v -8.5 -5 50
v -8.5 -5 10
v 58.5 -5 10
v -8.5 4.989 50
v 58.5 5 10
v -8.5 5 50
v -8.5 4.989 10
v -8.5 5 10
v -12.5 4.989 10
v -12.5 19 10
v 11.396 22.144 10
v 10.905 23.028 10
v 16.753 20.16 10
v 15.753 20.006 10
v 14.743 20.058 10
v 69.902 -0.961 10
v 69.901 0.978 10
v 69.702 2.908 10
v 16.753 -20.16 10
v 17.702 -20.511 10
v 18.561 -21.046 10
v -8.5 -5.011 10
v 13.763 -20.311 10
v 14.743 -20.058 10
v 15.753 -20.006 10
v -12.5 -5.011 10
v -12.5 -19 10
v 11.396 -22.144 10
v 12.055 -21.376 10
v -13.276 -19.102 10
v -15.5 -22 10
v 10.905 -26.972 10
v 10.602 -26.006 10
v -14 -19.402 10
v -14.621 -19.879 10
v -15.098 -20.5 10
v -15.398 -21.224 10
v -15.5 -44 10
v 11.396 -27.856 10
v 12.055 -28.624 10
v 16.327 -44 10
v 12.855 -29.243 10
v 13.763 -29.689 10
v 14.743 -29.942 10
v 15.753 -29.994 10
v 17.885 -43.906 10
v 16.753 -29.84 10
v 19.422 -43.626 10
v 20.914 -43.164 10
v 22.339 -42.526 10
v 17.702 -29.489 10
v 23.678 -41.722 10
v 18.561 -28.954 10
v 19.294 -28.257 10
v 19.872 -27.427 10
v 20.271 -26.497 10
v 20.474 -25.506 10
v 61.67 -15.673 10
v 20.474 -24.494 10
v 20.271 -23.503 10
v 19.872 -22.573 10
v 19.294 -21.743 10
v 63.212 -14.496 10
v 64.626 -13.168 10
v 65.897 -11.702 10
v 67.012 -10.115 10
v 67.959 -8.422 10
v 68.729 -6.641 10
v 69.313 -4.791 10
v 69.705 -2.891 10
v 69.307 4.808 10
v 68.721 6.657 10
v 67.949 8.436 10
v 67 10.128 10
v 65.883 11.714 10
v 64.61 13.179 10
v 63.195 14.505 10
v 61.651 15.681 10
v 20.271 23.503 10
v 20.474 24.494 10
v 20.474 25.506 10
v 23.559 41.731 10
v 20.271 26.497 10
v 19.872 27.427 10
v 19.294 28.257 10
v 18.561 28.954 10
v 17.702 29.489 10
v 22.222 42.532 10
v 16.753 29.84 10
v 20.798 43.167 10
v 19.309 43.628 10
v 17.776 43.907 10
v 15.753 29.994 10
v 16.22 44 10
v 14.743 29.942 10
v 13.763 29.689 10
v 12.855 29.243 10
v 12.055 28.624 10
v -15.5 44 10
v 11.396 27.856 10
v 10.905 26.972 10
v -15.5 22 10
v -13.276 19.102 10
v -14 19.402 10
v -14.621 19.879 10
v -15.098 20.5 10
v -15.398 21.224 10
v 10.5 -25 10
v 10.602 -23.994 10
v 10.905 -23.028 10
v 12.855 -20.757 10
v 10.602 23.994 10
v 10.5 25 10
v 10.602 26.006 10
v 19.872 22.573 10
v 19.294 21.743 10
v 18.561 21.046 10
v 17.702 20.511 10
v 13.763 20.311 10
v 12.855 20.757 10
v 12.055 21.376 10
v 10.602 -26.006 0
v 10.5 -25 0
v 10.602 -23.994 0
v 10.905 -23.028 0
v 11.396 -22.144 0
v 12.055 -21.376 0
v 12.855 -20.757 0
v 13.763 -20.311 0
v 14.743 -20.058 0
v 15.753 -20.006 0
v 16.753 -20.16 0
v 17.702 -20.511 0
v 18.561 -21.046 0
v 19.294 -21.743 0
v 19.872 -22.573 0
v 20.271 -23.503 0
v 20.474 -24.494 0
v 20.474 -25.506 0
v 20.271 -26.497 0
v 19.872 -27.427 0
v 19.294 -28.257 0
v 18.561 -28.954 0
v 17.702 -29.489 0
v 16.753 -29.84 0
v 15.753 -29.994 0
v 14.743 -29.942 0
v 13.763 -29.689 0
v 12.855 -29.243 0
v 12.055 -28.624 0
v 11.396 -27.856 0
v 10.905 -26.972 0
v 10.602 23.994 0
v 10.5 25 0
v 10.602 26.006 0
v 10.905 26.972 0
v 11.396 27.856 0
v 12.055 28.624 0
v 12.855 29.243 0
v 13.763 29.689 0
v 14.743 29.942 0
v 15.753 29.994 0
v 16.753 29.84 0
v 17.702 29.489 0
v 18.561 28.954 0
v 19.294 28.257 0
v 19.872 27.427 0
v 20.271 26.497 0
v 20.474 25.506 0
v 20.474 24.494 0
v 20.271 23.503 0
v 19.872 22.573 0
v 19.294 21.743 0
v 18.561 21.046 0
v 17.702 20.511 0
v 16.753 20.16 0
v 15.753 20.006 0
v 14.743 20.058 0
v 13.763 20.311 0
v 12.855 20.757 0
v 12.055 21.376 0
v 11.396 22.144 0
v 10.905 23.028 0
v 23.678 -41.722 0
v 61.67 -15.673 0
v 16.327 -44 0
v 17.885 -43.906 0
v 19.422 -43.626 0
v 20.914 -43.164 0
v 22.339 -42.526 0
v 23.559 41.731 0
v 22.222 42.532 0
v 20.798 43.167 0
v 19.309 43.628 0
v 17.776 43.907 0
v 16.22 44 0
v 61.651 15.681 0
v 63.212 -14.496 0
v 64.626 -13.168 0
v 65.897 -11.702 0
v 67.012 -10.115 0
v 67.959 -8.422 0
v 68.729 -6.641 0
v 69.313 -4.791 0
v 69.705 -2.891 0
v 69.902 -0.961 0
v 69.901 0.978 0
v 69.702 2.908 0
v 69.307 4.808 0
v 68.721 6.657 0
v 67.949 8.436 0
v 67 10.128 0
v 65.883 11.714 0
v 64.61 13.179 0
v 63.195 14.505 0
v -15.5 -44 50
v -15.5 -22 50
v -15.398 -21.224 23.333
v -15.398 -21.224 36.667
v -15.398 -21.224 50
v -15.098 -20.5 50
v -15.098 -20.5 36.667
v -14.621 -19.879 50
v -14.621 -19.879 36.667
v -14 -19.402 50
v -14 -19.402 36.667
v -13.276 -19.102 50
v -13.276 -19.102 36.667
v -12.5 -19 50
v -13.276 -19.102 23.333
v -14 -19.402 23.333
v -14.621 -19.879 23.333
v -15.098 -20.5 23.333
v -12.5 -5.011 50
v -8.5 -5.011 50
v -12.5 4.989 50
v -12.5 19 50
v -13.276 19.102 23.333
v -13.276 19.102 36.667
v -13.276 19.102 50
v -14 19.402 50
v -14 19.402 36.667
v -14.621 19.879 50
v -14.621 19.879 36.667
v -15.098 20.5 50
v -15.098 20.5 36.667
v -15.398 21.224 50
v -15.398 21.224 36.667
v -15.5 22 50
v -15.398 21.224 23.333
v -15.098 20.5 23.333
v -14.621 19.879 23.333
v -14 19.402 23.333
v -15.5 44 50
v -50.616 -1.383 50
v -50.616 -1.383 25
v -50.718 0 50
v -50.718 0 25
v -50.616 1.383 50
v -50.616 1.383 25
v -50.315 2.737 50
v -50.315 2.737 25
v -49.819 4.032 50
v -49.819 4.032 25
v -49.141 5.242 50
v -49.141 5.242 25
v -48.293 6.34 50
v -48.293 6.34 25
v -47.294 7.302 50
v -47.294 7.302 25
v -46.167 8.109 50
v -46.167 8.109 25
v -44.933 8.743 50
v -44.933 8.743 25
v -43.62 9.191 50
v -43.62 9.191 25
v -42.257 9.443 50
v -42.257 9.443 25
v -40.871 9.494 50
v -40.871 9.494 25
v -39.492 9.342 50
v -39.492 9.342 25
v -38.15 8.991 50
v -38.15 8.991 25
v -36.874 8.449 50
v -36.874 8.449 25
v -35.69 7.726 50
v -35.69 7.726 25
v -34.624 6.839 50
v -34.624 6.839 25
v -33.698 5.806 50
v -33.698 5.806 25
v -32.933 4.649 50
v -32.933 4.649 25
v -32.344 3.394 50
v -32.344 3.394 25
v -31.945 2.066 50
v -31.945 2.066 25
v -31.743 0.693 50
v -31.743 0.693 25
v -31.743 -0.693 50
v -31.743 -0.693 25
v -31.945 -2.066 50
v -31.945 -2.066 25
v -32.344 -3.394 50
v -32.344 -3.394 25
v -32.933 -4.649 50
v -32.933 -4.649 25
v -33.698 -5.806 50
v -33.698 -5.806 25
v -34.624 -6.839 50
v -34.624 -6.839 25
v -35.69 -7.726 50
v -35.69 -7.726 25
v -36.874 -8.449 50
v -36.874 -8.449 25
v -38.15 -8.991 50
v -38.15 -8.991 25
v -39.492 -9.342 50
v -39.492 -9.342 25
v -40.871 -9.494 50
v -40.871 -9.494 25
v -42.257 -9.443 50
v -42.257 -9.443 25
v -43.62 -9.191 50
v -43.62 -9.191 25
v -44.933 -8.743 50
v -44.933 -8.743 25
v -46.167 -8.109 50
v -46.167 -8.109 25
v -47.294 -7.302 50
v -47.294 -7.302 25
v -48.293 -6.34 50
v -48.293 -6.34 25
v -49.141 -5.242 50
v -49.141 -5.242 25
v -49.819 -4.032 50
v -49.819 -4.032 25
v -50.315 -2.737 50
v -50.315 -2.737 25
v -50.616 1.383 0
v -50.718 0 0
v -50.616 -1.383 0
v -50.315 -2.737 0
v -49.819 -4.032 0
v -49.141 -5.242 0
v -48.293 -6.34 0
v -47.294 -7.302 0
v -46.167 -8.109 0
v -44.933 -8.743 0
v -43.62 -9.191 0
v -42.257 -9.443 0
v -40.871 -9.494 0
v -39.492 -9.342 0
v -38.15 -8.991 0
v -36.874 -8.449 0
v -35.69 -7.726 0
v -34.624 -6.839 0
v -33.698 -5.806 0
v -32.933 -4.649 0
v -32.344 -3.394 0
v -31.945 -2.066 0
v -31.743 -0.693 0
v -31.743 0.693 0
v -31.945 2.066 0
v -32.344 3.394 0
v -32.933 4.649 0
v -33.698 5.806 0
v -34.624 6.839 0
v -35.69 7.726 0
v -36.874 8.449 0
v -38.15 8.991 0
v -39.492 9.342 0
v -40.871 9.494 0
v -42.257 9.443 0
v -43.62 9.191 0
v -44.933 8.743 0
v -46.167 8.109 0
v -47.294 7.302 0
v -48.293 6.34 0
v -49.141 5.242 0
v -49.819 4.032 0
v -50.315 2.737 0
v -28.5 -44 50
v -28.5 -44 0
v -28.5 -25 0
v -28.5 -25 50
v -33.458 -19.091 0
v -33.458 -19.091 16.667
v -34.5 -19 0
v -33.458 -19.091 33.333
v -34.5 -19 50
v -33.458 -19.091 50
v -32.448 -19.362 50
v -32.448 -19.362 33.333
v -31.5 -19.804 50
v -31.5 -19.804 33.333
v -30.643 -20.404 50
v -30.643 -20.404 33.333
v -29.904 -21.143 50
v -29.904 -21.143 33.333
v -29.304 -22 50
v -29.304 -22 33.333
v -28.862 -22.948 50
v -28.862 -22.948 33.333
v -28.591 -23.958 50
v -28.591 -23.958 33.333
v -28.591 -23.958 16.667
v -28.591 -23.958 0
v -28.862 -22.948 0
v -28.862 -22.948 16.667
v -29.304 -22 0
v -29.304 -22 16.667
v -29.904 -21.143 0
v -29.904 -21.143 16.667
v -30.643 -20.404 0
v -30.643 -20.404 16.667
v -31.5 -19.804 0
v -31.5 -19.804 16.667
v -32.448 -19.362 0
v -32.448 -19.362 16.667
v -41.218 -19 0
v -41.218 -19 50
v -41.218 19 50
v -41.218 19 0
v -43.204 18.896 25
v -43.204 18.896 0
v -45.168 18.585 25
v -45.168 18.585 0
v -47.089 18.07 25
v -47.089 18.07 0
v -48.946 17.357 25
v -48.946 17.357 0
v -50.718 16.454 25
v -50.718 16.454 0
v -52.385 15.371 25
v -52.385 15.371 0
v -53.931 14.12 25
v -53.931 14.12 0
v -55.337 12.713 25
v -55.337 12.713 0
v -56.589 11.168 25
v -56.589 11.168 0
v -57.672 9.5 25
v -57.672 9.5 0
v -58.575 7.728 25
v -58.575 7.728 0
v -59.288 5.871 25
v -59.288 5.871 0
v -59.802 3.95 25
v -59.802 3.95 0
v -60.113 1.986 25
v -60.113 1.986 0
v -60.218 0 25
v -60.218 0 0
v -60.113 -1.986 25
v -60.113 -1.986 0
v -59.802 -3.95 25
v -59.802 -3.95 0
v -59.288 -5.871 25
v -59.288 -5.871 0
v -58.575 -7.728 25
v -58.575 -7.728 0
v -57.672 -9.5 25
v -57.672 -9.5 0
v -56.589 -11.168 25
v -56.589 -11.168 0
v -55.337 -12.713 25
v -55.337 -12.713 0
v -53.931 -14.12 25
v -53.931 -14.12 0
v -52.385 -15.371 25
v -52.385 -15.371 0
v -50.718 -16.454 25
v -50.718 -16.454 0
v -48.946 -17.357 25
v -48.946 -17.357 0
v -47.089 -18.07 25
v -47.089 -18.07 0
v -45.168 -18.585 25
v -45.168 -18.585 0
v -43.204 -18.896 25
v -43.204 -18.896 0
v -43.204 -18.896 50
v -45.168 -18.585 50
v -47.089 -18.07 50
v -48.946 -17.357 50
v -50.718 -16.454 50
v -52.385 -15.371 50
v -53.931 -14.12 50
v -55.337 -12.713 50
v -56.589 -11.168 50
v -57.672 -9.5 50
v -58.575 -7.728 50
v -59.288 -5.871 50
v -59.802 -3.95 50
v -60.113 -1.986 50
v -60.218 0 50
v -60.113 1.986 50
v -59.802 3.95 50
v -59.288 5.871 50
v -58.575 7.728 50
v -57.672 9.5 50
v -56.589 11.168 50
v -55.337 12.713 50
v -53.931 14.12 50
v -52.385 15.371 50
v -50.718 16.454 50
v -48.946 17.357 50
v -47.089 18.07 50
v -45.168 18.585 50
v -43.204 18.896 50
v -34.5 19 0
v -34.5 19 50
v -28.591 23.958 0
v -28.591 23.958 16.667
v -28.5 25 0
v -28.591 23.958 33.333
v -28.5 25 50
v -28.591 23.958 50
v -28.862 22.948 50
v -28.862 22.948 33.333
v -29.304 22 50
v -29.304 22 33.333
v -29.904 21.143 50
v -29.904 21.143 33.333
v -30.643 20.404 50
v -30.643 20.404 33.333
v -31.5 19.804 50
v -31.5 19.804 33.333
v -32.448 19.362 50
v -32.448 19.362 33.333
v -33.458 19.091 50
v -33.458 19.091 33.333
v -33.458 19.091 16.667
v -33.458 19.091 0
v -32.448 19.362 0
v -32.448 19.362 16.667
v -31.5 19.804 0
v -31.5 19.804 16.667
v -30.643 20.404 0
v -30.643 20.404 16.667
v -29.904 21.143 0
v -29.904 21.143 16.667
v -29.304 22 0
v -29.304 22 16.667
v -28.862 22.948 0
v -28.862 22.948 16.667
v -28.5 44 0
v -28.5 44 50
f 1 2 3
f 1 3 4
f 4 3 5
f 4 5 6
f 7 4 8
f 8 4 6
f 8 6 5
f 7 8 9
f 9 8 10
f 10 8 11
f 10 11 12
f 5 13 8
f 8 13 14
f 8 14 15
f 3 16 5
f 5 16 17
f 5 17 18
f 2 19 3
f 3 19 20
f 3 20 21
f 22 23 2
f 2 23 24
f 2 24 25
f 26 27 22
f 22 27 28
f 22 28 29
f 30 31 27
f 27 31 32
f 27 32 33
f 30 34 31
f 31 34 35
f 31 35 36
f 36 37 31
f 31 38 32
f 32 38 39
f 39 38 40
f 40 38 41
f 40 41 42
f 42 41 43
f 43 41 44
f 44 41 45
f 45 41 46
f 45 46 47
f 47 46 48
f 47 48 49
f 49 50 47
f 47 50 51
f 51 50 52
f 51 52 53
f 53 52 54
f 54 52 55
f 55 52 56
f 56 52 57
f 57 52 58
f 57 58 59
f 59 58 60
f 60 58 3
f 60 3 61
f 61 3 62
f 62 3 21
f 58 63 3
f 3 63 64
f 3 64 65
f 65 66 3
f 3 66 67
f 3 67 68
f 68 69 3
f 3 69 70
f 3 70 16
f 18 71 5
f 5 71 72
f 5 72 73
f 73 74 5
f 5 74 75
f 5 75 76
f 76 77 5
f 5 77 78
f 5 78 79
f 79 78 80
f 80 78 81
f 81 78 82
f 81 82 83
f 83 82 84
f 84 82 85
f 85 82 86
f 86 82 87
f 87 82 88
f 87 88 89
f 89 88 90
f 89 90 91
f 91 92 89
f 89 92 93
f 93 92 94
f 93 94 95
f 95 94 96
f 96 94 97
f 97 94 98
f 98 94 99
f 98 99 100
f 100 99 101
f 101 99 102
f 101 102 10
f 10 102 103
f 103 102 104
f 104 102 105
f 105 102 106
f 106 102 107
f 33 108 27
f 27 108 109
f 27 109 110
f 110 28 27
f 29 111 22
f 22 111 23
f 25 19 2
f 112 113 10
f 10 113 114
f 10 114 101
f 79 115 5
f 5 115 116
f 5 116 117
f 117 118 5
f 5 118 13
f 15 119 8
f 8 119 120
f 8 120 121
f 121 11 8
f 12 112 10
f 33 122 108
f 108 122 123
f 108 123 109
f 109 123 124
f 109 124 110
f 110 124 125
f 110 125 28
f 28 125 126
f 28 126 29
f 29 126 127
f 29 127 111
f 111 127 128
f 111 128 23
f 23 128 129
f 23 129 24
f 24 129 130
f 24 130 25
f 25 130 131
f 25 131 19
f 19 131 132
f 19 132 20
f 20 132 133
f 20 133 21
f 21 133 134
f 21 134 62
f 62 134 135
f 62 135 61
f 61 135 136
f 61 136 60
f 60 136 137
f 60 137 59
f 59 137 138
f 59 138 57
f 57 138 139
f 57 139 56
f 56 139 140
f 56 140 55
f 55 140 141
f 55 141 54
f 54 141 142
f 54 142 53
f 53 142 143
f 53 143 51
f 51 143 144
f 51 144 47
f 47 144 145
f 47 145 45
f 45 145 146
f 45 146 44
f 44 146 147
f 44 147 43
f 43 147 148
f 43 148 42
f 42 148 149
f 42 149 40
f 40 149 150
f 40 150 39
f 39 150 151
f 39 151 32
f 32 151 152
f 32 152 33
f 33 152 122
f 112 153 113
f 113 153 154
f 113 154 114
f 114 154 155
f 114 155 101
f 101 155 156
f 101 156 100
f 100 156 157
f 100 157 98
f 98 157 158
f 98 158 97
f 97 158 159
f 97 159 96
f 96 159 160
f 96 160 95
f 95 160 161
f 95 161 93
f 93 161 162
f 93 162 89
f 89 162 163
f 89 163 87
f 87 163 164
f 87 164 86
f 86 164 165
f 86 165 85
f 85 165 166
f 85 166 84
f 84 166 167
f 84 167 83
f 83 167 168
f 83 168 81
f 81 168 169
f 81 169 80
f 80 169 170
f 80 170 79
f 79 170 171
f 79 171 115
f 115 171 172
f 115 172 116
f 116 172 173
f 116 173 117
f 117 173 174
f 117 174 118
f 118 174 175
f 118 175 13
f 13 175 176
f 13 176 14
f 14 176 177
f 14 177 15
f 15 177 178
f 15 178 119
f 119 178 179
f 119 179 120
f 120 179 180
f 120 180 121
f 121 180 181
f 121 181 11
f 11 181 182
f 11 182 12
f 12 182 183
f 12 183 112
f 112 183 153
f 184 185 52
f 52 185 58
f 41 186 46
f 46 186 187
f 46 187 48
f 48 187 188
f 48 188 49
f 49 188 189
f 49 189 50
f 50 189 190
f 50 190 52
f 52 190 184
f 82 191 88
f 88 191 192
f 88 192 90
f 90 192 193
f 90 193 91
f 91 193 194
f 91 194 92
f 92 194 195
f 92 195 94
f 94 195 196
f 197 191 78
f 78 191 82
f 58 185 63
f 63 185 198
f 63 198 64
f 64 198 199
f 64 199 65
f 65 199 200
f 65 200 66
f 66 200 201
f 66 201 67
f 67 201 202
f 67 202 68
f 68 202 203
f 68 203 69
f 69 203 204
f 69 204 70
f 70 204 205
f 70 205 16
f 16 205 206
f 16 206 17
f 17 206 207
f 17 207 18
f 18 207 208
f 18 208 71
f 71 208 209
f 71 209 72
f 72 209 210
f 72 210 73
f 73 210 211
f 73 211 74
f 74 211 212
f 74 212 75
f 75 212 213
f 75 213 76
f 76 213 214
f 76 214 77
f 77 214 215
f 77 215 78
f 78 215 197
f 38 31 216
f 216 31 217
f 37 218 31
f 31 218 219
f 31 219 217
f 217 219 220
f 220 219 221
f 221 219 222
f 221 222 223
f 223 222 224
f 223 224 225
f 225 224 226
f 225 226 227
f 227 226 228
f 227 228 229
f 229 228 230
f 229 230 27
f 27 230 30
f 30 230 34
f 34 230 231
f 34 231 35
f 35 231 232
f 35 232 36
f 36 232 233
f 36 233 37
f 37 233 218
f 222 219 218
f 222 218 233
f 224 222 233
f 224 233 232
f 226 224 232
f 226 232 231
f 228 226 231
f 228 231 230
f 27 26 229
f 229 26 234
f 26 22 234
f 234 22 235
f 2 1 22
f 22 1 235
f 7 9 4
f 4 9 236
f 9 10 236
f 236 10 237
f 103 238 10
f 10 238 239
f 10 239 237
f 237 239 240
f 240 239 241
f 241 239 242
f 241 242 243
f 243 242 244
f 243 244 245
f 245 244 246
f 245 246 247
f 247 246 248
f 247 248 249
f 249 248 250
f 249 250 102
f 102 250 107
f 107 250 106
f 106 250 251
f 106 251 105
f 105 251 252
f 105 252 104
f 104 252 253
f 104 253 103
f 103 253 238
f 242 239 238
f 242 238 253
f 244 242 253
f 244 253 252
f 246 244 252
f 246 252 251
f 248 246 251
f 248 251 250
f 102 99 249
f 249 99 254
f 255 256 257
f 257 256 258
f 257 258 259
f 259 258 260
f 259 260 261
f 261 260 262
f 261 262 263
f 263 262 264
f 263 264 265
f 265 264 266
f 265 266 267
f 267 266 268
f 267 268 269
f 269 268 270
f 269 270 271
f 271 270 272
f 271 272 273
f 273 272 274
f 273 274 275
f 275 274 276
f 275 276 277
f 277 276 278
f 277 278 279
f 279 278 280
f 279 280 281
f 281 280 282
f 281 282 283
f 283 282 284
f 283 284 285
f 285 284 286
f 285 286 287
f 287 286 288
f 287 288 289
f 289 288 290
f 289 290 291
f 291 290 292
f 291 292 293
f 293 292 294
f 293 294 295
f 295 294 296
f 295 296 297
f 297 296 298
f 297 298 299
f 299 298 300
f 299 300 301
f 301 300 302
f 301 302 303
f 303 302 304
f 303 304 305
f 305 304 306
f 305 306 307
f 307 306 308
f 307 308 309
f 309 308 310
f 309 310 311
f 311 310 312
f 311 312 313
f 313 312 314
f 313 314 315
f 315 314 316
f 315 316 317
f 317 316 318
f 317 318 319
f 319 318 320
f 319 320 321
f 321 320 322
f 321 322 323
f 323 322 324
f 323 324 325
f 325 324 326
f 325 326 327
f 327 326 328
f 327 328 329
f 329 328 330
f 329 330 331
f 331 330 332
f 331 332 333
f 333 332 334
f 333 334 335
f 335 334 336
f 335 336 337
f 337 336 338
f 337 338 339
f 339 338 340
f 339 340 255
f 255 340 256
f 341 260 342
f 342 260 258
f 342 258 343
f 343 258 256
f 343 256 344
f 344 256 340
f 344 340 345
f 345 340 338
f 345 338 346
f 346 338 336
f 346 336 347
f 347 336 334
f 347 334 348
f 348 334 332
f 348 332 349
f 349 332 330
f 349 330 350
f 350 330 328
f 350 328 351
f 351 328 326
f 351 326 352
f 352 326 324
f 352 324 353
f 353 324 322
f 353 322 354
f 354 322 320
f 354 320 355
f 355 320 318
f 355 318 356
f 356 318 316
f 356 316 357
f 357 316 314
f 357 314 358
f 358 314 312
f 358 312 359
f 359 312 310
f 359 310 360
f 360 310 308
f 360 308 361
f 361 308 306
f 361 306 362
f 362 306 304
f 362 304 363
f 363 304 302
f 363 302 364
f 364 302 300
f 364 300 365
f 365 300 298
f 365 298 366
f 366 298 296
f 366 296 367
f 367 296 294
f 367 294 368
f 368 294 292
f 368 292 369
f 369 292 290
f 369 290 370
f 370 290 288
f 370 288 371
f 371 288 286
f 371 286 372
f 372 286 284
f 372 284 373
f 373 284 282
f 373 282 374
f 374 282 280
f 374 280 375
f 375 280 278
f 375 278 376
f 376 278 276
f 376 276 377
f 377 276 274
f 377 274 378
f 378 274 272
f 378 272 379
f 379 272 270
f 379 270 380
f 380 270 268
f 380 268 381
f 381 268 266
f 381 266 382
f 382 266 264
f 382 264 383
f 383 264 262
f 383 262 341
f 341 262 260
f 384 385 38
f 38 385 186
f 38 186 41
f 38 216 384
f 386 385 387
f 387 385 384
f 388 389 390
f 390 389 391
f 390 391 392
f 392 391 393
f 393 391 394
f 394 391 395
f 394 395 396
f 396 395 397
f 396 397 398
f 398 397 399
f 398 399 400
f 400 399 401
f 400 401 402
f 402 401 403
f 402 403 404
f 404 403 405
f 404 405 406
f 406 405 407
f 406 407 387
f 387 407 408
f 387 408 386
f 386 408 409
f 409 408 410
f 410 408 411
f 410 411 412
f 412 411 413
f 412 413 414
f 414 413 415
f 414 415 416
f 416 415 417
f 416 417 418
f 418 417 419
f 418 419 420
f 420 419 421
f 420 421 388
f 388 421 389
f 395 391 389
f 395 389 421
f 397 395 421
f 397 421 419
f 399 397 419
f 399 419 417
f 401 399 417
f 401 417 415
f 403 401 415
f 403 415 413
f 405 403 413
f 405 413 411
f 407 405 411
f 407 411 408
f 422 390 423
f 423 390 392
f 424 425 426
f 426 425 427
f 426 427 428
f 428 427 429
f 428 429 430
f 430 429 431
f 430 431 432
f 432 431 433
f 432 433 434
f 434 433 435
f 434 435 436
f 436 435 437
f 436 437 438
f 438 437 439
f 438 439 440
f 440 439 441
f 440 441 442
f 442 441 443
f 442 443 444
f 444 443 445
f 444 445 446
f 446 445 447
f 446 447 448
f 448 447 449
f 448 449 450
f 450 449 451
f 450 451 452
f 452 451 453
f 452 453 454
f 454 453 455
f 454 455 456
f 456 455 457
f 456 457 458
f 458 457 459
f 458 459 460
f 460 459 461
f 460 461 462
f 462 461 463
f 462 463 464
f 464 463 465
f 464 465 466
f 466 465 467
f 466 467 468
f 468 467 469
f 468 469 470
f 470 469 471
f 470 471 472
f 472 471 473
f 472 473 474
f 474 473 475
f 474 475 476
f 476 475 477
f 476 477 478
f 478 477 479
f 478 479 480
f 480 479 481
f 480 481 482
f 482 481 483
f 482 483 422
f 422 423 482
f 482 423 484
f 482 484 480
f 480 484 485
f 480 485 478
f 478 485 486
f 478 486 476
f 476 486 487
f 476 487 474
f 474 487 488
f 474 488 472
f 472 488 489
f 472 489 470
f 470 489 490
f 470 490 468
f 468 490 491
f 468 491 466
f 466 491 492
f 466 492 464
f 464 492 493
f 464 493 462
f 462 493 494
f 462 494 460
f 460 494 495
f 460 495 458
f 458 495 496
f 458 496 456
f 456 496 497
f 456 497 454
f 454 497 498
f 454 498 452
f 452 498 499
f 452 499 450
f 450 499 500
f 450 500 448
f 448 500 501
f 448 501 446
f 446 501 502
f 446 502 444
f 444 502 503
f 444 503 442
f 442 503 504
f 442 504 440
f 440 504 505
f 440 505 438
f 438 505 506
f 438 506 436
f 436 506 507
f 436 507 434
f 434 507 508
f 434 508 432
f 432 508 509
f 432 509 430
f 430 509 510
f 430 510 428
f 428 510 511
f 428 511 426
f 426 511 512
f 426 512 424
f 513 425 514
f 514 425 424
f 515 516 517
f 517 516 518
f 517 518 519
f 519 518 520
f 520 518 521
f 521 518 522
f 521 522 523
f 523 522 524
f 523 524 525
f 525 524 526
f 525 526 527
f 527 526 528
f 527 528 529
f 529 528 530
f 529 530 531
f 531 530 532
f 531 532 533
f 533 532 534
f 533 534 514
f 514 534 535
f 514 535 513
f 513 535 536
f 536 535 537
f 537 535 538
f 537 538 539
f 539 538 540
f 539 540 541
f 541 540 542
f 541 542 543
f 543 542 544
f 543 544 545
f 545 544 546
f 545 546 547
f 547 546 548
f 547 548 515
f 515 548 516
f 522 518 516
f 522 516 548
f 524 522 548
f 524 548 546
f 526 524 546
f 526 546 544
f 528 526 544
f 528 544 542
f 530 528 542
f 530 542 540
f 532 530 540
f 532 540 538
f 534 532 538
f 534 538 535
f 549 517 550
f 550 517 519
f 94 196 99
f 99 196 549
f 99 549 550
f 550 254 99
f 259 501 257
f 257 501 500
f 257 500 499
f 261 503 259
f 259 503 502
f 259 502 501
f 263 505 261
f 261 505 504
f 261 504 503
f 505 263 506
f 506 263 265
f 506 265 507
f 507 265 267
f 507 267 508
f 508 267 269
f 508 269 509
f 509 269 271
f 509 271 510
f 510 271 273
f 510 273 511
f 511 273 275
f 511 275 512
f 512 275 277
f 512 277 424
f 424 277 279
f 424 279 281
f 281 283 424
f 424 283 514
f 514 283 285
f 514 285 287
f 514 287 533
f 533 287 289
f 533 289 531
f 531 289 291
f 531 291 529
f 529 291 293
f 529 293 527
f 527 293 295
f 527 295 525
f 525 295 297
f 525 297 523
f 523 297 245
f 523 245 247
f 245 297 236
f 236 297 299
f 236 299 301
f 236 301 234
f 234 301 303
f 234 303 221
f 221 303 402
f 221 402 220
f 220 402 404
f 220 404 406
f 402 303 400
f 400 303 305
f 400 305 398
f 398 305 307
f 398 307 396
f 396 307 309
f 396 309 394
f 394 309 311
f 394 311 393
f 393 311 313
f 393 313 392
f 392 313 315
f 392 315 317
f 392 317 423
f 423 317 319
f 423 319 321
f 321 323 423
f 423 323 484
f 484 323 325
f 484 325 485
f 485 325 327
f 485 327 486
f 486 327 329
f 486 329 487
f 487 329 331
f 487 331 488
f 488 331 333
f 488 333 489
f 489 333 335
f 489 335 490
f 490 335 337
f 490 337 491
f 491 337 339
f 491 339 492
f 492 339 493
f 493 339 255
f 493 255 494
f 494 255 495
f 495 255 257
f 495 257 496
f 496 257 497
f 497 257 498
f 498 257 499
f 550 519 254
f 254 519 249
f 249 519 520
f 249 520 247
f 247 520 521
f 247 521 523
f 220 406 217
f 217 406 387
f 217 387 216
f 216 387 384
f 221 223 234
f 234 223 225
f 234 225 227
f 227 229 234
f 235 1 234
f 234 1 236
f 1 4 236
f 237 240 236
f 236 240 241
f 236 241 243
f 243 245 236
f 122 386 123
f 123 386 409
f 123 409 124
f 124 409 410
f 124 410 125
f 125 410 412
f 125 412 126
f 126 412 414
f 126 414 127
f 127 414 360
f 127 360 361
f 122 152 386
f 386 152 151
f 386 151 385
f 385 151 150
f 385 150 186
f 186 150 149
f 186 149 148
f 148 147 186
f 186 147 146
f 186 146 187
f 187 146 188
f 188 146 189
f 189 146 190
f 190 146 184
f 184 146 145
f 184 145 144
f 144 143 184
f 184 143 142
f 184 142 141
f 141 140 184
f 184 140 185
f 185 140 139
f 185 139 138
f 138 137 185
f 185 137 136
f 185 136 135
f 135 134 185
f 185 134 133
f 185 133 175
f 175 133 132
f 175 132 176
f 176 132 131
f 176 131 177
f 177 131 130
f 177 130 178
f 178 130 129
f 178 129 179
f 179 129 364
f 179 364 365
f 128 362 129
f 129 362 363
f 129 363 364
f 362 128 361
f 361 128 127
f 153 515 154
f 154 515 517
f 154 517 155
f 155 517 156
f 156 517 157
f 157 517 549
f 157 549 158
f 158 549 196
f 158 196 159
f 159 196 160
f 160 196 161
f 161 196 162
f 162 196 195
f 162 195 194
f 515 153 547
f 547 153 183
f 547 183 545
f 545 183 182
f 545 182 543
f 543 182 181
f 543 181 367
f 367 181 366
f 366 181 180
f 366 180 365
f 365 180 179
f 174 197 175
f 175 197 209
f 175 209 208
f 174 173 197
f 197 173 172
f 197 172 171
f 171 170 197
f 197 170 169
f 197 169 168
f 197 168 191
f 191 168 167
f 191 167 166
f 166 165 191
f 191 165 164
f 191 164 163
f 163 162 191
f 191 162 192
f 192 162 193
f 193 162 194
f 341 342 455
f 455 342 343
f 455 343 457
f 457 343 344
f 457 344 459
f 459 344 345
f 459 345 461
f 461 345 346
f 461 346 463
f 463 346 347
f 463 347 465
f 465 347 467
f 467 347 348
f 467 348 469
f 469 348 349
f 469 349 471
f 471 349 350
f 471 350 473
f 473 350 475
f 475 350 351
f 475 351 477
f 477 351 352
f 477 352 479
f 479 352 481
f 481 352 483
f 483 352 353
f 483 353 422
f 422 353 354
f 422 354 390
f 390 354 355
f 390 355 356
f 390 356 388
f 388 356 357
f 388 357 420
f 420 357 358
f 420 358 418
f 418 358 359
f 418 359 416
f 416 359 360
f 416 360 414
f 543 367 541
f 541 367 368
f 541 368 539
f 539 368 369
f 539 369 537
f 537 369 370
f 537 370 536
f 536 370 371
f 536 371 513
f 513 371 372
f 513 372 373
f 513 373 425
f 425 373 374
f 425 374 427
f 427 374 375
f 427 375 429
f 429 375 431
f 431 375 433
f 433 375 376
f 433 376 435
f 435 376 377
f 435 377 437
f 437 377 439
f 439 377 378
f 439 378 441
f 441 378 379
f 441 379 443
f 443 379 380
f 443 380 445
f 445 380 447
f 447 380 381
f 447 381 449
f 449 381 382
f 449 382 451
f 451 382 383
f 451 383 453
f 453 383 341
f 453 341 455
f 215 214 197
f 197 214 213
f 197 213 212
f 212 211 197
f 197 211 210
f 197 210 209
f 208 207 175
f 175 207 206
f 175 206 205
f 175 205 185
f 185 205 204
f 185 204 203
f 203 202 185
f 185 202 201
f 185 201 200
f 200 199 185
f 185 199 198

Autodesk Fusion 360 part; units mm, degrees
sketch "Baza" plane through (0, 0, 0) normal (0, 0, 1) x (1, 0, 0)
  line L0 (16.2203, 44) -> (-15.5, 44)
  line L1 (-15.5, -22) -> (-15.5, -44)
  line L2 (-15.5, -44) -> (16.3266, -44)
  circle A0 centre (15.5, 25) radius 5
  circle A1 centre (15.5, -25) radius 5
  line L3 (15.5, 44) -> (51.5, 44) construction
  line L4 (15.5, -44) -> (51.5, -44) construction
  line L5 (51.5, 44) -> (51.5, -44) construction
  line L6 (-40, 0) -> (51.5, 0) construction
  line L7 (15.5, 25) -> (15.5, 20) construction
  line L8 (15.5, -20) -> (15.5, -25) construction
  line L9 (-15.5, 44) -> (-28.5, 44)
  line L10 (-28.5, 44) -> (-28.5, 25)
  line L11 (-28.5, -44) -> (-15.5, -44)
  line L12 (-12.5, -19) -> (-12.4999, -19) construction
  line L13 (-41.2176, -9.5) -> (-41.2176, 9.5) construction
  line L14 (-12.5, 19) -> (-12.4999, 19) construction
  circle A2 centre (-41.2176, 0) radius 9.5
  line L15 (-28.5, -25) -> (-28.5, -44)
  line L16 (-34.5, 19) -> (-41.2176, 19)
  arc A3 (-34.5, 19) -> (-28.5, 25) centre (-34.5, 25) ccw
  line L17 (-34.5, -19) -> (-41.2176, -19)
  arc A4 (-28.5, -25) -> (-34.5, -19) centre (-34.5, -25) ccw
  arc A5 (-41.2176, 19) -> (-41.2176, -19) centre (-41.2176, 0) ccw
  line L18 (-15.5, 44) -> (-15.5, 22)
  arc A6 (-15.5, 22) -> (-12.4999, 19) centre (-12.5, 22) ccw
  arc A7 (-12.4999, -19) -> (-15.5, -22) centre (-12.5, -22) ccw
  line L19 (-12.5, 4.9885) -> (-8.5, 4.9885)
  line L20 (-8.5, 4.9885) -> (-8.5, -5.0115)
  line L21 (-8.5, -5.0115) -> (-12.5, -5.0115)
  line L22 (-12.5, 19) -> (-12.5, 4.9885)
  line L23 (-12.5, -5.0115) -> (-12.5, -19)
  line L24 (64.6465, -13.1465) -> (64.935, -13.435) construction
  line L25 (51.5, 0) -> (70.5, 0) construction
  line L26 (64.6437, 13.1437) -> (64.935, 13.435) construction
  line L27 (61.6515, 15.6805) -> (23.5586, 41.7307)
  line L28 (61.6703, -15.6734) -> (23.6778, -41.7219)
  arc A8 (16.3266, -44) -> (23.6778, -41.7219) centre (16.3266, -31) ccw
  arc A9 (23.5586, 41.7307) -> (16.2203, 44) centre (16.2203, 31) ccw
  arc A10 (61.6703, -15.6734) -> (61.6515, 15.6805) centre (50.9262, -0.0029) ccw
  dimension "d1" = 88
  dimension "d2" = 31
  dimension "d3" = 50
  dimension "d5" = 10
  dimension "d6" = 10
  dimension "d7" = 36
  dimension "d12" = 13
  dimension "d13" = 38
  dimension "d15" = 3
  dimension "d16" = 19
  dimension "d18" = 6
  dimension "d20" = 6
  dimension "d21" = 3
  dimension "d22" = 3
  dimension "d23" = 10
  dimension "d24" = 20
  dimension "d27" = 13
  dimension "d28" = 13
  dimension "d29" = 19
extrude "Extrude1" add sketch "Baza" along normal blind 50 contours L1 L9 L10 L11 L15 L16 A3 L17 A4 A5 L18 A6 A7 L19 L20 L21 L22 L23
extrude "Extrude2" add sketch "Baza" along normal blind 10 contours L0 L1 L2 L18 A6 A7 L19 L20 L21 L22 L23 L27 L28 A8 A9 A10
sketch "Triunghi" plane through (0, 0, 0) normal (0, 1, 0) x (1, 0, 0)
  line L0 (-8.5, -50) -> (-8.5, -10)
  line L1 (-8.5, -10) -> (58.5, -10)
  line L2 (-15.5, 0) -> (16.3266, 0)
  line L3 (-15.5, -10) -> (-15.5, -50)
  line L4 (-8.5, -50) -> (58.5, -10)
  dimension "d34" = 10
  dimension "d41" = 40
  dimension "d42" = 67
extrude "Extrude3" add sketch "Triunghi" along normal mid plane 10
